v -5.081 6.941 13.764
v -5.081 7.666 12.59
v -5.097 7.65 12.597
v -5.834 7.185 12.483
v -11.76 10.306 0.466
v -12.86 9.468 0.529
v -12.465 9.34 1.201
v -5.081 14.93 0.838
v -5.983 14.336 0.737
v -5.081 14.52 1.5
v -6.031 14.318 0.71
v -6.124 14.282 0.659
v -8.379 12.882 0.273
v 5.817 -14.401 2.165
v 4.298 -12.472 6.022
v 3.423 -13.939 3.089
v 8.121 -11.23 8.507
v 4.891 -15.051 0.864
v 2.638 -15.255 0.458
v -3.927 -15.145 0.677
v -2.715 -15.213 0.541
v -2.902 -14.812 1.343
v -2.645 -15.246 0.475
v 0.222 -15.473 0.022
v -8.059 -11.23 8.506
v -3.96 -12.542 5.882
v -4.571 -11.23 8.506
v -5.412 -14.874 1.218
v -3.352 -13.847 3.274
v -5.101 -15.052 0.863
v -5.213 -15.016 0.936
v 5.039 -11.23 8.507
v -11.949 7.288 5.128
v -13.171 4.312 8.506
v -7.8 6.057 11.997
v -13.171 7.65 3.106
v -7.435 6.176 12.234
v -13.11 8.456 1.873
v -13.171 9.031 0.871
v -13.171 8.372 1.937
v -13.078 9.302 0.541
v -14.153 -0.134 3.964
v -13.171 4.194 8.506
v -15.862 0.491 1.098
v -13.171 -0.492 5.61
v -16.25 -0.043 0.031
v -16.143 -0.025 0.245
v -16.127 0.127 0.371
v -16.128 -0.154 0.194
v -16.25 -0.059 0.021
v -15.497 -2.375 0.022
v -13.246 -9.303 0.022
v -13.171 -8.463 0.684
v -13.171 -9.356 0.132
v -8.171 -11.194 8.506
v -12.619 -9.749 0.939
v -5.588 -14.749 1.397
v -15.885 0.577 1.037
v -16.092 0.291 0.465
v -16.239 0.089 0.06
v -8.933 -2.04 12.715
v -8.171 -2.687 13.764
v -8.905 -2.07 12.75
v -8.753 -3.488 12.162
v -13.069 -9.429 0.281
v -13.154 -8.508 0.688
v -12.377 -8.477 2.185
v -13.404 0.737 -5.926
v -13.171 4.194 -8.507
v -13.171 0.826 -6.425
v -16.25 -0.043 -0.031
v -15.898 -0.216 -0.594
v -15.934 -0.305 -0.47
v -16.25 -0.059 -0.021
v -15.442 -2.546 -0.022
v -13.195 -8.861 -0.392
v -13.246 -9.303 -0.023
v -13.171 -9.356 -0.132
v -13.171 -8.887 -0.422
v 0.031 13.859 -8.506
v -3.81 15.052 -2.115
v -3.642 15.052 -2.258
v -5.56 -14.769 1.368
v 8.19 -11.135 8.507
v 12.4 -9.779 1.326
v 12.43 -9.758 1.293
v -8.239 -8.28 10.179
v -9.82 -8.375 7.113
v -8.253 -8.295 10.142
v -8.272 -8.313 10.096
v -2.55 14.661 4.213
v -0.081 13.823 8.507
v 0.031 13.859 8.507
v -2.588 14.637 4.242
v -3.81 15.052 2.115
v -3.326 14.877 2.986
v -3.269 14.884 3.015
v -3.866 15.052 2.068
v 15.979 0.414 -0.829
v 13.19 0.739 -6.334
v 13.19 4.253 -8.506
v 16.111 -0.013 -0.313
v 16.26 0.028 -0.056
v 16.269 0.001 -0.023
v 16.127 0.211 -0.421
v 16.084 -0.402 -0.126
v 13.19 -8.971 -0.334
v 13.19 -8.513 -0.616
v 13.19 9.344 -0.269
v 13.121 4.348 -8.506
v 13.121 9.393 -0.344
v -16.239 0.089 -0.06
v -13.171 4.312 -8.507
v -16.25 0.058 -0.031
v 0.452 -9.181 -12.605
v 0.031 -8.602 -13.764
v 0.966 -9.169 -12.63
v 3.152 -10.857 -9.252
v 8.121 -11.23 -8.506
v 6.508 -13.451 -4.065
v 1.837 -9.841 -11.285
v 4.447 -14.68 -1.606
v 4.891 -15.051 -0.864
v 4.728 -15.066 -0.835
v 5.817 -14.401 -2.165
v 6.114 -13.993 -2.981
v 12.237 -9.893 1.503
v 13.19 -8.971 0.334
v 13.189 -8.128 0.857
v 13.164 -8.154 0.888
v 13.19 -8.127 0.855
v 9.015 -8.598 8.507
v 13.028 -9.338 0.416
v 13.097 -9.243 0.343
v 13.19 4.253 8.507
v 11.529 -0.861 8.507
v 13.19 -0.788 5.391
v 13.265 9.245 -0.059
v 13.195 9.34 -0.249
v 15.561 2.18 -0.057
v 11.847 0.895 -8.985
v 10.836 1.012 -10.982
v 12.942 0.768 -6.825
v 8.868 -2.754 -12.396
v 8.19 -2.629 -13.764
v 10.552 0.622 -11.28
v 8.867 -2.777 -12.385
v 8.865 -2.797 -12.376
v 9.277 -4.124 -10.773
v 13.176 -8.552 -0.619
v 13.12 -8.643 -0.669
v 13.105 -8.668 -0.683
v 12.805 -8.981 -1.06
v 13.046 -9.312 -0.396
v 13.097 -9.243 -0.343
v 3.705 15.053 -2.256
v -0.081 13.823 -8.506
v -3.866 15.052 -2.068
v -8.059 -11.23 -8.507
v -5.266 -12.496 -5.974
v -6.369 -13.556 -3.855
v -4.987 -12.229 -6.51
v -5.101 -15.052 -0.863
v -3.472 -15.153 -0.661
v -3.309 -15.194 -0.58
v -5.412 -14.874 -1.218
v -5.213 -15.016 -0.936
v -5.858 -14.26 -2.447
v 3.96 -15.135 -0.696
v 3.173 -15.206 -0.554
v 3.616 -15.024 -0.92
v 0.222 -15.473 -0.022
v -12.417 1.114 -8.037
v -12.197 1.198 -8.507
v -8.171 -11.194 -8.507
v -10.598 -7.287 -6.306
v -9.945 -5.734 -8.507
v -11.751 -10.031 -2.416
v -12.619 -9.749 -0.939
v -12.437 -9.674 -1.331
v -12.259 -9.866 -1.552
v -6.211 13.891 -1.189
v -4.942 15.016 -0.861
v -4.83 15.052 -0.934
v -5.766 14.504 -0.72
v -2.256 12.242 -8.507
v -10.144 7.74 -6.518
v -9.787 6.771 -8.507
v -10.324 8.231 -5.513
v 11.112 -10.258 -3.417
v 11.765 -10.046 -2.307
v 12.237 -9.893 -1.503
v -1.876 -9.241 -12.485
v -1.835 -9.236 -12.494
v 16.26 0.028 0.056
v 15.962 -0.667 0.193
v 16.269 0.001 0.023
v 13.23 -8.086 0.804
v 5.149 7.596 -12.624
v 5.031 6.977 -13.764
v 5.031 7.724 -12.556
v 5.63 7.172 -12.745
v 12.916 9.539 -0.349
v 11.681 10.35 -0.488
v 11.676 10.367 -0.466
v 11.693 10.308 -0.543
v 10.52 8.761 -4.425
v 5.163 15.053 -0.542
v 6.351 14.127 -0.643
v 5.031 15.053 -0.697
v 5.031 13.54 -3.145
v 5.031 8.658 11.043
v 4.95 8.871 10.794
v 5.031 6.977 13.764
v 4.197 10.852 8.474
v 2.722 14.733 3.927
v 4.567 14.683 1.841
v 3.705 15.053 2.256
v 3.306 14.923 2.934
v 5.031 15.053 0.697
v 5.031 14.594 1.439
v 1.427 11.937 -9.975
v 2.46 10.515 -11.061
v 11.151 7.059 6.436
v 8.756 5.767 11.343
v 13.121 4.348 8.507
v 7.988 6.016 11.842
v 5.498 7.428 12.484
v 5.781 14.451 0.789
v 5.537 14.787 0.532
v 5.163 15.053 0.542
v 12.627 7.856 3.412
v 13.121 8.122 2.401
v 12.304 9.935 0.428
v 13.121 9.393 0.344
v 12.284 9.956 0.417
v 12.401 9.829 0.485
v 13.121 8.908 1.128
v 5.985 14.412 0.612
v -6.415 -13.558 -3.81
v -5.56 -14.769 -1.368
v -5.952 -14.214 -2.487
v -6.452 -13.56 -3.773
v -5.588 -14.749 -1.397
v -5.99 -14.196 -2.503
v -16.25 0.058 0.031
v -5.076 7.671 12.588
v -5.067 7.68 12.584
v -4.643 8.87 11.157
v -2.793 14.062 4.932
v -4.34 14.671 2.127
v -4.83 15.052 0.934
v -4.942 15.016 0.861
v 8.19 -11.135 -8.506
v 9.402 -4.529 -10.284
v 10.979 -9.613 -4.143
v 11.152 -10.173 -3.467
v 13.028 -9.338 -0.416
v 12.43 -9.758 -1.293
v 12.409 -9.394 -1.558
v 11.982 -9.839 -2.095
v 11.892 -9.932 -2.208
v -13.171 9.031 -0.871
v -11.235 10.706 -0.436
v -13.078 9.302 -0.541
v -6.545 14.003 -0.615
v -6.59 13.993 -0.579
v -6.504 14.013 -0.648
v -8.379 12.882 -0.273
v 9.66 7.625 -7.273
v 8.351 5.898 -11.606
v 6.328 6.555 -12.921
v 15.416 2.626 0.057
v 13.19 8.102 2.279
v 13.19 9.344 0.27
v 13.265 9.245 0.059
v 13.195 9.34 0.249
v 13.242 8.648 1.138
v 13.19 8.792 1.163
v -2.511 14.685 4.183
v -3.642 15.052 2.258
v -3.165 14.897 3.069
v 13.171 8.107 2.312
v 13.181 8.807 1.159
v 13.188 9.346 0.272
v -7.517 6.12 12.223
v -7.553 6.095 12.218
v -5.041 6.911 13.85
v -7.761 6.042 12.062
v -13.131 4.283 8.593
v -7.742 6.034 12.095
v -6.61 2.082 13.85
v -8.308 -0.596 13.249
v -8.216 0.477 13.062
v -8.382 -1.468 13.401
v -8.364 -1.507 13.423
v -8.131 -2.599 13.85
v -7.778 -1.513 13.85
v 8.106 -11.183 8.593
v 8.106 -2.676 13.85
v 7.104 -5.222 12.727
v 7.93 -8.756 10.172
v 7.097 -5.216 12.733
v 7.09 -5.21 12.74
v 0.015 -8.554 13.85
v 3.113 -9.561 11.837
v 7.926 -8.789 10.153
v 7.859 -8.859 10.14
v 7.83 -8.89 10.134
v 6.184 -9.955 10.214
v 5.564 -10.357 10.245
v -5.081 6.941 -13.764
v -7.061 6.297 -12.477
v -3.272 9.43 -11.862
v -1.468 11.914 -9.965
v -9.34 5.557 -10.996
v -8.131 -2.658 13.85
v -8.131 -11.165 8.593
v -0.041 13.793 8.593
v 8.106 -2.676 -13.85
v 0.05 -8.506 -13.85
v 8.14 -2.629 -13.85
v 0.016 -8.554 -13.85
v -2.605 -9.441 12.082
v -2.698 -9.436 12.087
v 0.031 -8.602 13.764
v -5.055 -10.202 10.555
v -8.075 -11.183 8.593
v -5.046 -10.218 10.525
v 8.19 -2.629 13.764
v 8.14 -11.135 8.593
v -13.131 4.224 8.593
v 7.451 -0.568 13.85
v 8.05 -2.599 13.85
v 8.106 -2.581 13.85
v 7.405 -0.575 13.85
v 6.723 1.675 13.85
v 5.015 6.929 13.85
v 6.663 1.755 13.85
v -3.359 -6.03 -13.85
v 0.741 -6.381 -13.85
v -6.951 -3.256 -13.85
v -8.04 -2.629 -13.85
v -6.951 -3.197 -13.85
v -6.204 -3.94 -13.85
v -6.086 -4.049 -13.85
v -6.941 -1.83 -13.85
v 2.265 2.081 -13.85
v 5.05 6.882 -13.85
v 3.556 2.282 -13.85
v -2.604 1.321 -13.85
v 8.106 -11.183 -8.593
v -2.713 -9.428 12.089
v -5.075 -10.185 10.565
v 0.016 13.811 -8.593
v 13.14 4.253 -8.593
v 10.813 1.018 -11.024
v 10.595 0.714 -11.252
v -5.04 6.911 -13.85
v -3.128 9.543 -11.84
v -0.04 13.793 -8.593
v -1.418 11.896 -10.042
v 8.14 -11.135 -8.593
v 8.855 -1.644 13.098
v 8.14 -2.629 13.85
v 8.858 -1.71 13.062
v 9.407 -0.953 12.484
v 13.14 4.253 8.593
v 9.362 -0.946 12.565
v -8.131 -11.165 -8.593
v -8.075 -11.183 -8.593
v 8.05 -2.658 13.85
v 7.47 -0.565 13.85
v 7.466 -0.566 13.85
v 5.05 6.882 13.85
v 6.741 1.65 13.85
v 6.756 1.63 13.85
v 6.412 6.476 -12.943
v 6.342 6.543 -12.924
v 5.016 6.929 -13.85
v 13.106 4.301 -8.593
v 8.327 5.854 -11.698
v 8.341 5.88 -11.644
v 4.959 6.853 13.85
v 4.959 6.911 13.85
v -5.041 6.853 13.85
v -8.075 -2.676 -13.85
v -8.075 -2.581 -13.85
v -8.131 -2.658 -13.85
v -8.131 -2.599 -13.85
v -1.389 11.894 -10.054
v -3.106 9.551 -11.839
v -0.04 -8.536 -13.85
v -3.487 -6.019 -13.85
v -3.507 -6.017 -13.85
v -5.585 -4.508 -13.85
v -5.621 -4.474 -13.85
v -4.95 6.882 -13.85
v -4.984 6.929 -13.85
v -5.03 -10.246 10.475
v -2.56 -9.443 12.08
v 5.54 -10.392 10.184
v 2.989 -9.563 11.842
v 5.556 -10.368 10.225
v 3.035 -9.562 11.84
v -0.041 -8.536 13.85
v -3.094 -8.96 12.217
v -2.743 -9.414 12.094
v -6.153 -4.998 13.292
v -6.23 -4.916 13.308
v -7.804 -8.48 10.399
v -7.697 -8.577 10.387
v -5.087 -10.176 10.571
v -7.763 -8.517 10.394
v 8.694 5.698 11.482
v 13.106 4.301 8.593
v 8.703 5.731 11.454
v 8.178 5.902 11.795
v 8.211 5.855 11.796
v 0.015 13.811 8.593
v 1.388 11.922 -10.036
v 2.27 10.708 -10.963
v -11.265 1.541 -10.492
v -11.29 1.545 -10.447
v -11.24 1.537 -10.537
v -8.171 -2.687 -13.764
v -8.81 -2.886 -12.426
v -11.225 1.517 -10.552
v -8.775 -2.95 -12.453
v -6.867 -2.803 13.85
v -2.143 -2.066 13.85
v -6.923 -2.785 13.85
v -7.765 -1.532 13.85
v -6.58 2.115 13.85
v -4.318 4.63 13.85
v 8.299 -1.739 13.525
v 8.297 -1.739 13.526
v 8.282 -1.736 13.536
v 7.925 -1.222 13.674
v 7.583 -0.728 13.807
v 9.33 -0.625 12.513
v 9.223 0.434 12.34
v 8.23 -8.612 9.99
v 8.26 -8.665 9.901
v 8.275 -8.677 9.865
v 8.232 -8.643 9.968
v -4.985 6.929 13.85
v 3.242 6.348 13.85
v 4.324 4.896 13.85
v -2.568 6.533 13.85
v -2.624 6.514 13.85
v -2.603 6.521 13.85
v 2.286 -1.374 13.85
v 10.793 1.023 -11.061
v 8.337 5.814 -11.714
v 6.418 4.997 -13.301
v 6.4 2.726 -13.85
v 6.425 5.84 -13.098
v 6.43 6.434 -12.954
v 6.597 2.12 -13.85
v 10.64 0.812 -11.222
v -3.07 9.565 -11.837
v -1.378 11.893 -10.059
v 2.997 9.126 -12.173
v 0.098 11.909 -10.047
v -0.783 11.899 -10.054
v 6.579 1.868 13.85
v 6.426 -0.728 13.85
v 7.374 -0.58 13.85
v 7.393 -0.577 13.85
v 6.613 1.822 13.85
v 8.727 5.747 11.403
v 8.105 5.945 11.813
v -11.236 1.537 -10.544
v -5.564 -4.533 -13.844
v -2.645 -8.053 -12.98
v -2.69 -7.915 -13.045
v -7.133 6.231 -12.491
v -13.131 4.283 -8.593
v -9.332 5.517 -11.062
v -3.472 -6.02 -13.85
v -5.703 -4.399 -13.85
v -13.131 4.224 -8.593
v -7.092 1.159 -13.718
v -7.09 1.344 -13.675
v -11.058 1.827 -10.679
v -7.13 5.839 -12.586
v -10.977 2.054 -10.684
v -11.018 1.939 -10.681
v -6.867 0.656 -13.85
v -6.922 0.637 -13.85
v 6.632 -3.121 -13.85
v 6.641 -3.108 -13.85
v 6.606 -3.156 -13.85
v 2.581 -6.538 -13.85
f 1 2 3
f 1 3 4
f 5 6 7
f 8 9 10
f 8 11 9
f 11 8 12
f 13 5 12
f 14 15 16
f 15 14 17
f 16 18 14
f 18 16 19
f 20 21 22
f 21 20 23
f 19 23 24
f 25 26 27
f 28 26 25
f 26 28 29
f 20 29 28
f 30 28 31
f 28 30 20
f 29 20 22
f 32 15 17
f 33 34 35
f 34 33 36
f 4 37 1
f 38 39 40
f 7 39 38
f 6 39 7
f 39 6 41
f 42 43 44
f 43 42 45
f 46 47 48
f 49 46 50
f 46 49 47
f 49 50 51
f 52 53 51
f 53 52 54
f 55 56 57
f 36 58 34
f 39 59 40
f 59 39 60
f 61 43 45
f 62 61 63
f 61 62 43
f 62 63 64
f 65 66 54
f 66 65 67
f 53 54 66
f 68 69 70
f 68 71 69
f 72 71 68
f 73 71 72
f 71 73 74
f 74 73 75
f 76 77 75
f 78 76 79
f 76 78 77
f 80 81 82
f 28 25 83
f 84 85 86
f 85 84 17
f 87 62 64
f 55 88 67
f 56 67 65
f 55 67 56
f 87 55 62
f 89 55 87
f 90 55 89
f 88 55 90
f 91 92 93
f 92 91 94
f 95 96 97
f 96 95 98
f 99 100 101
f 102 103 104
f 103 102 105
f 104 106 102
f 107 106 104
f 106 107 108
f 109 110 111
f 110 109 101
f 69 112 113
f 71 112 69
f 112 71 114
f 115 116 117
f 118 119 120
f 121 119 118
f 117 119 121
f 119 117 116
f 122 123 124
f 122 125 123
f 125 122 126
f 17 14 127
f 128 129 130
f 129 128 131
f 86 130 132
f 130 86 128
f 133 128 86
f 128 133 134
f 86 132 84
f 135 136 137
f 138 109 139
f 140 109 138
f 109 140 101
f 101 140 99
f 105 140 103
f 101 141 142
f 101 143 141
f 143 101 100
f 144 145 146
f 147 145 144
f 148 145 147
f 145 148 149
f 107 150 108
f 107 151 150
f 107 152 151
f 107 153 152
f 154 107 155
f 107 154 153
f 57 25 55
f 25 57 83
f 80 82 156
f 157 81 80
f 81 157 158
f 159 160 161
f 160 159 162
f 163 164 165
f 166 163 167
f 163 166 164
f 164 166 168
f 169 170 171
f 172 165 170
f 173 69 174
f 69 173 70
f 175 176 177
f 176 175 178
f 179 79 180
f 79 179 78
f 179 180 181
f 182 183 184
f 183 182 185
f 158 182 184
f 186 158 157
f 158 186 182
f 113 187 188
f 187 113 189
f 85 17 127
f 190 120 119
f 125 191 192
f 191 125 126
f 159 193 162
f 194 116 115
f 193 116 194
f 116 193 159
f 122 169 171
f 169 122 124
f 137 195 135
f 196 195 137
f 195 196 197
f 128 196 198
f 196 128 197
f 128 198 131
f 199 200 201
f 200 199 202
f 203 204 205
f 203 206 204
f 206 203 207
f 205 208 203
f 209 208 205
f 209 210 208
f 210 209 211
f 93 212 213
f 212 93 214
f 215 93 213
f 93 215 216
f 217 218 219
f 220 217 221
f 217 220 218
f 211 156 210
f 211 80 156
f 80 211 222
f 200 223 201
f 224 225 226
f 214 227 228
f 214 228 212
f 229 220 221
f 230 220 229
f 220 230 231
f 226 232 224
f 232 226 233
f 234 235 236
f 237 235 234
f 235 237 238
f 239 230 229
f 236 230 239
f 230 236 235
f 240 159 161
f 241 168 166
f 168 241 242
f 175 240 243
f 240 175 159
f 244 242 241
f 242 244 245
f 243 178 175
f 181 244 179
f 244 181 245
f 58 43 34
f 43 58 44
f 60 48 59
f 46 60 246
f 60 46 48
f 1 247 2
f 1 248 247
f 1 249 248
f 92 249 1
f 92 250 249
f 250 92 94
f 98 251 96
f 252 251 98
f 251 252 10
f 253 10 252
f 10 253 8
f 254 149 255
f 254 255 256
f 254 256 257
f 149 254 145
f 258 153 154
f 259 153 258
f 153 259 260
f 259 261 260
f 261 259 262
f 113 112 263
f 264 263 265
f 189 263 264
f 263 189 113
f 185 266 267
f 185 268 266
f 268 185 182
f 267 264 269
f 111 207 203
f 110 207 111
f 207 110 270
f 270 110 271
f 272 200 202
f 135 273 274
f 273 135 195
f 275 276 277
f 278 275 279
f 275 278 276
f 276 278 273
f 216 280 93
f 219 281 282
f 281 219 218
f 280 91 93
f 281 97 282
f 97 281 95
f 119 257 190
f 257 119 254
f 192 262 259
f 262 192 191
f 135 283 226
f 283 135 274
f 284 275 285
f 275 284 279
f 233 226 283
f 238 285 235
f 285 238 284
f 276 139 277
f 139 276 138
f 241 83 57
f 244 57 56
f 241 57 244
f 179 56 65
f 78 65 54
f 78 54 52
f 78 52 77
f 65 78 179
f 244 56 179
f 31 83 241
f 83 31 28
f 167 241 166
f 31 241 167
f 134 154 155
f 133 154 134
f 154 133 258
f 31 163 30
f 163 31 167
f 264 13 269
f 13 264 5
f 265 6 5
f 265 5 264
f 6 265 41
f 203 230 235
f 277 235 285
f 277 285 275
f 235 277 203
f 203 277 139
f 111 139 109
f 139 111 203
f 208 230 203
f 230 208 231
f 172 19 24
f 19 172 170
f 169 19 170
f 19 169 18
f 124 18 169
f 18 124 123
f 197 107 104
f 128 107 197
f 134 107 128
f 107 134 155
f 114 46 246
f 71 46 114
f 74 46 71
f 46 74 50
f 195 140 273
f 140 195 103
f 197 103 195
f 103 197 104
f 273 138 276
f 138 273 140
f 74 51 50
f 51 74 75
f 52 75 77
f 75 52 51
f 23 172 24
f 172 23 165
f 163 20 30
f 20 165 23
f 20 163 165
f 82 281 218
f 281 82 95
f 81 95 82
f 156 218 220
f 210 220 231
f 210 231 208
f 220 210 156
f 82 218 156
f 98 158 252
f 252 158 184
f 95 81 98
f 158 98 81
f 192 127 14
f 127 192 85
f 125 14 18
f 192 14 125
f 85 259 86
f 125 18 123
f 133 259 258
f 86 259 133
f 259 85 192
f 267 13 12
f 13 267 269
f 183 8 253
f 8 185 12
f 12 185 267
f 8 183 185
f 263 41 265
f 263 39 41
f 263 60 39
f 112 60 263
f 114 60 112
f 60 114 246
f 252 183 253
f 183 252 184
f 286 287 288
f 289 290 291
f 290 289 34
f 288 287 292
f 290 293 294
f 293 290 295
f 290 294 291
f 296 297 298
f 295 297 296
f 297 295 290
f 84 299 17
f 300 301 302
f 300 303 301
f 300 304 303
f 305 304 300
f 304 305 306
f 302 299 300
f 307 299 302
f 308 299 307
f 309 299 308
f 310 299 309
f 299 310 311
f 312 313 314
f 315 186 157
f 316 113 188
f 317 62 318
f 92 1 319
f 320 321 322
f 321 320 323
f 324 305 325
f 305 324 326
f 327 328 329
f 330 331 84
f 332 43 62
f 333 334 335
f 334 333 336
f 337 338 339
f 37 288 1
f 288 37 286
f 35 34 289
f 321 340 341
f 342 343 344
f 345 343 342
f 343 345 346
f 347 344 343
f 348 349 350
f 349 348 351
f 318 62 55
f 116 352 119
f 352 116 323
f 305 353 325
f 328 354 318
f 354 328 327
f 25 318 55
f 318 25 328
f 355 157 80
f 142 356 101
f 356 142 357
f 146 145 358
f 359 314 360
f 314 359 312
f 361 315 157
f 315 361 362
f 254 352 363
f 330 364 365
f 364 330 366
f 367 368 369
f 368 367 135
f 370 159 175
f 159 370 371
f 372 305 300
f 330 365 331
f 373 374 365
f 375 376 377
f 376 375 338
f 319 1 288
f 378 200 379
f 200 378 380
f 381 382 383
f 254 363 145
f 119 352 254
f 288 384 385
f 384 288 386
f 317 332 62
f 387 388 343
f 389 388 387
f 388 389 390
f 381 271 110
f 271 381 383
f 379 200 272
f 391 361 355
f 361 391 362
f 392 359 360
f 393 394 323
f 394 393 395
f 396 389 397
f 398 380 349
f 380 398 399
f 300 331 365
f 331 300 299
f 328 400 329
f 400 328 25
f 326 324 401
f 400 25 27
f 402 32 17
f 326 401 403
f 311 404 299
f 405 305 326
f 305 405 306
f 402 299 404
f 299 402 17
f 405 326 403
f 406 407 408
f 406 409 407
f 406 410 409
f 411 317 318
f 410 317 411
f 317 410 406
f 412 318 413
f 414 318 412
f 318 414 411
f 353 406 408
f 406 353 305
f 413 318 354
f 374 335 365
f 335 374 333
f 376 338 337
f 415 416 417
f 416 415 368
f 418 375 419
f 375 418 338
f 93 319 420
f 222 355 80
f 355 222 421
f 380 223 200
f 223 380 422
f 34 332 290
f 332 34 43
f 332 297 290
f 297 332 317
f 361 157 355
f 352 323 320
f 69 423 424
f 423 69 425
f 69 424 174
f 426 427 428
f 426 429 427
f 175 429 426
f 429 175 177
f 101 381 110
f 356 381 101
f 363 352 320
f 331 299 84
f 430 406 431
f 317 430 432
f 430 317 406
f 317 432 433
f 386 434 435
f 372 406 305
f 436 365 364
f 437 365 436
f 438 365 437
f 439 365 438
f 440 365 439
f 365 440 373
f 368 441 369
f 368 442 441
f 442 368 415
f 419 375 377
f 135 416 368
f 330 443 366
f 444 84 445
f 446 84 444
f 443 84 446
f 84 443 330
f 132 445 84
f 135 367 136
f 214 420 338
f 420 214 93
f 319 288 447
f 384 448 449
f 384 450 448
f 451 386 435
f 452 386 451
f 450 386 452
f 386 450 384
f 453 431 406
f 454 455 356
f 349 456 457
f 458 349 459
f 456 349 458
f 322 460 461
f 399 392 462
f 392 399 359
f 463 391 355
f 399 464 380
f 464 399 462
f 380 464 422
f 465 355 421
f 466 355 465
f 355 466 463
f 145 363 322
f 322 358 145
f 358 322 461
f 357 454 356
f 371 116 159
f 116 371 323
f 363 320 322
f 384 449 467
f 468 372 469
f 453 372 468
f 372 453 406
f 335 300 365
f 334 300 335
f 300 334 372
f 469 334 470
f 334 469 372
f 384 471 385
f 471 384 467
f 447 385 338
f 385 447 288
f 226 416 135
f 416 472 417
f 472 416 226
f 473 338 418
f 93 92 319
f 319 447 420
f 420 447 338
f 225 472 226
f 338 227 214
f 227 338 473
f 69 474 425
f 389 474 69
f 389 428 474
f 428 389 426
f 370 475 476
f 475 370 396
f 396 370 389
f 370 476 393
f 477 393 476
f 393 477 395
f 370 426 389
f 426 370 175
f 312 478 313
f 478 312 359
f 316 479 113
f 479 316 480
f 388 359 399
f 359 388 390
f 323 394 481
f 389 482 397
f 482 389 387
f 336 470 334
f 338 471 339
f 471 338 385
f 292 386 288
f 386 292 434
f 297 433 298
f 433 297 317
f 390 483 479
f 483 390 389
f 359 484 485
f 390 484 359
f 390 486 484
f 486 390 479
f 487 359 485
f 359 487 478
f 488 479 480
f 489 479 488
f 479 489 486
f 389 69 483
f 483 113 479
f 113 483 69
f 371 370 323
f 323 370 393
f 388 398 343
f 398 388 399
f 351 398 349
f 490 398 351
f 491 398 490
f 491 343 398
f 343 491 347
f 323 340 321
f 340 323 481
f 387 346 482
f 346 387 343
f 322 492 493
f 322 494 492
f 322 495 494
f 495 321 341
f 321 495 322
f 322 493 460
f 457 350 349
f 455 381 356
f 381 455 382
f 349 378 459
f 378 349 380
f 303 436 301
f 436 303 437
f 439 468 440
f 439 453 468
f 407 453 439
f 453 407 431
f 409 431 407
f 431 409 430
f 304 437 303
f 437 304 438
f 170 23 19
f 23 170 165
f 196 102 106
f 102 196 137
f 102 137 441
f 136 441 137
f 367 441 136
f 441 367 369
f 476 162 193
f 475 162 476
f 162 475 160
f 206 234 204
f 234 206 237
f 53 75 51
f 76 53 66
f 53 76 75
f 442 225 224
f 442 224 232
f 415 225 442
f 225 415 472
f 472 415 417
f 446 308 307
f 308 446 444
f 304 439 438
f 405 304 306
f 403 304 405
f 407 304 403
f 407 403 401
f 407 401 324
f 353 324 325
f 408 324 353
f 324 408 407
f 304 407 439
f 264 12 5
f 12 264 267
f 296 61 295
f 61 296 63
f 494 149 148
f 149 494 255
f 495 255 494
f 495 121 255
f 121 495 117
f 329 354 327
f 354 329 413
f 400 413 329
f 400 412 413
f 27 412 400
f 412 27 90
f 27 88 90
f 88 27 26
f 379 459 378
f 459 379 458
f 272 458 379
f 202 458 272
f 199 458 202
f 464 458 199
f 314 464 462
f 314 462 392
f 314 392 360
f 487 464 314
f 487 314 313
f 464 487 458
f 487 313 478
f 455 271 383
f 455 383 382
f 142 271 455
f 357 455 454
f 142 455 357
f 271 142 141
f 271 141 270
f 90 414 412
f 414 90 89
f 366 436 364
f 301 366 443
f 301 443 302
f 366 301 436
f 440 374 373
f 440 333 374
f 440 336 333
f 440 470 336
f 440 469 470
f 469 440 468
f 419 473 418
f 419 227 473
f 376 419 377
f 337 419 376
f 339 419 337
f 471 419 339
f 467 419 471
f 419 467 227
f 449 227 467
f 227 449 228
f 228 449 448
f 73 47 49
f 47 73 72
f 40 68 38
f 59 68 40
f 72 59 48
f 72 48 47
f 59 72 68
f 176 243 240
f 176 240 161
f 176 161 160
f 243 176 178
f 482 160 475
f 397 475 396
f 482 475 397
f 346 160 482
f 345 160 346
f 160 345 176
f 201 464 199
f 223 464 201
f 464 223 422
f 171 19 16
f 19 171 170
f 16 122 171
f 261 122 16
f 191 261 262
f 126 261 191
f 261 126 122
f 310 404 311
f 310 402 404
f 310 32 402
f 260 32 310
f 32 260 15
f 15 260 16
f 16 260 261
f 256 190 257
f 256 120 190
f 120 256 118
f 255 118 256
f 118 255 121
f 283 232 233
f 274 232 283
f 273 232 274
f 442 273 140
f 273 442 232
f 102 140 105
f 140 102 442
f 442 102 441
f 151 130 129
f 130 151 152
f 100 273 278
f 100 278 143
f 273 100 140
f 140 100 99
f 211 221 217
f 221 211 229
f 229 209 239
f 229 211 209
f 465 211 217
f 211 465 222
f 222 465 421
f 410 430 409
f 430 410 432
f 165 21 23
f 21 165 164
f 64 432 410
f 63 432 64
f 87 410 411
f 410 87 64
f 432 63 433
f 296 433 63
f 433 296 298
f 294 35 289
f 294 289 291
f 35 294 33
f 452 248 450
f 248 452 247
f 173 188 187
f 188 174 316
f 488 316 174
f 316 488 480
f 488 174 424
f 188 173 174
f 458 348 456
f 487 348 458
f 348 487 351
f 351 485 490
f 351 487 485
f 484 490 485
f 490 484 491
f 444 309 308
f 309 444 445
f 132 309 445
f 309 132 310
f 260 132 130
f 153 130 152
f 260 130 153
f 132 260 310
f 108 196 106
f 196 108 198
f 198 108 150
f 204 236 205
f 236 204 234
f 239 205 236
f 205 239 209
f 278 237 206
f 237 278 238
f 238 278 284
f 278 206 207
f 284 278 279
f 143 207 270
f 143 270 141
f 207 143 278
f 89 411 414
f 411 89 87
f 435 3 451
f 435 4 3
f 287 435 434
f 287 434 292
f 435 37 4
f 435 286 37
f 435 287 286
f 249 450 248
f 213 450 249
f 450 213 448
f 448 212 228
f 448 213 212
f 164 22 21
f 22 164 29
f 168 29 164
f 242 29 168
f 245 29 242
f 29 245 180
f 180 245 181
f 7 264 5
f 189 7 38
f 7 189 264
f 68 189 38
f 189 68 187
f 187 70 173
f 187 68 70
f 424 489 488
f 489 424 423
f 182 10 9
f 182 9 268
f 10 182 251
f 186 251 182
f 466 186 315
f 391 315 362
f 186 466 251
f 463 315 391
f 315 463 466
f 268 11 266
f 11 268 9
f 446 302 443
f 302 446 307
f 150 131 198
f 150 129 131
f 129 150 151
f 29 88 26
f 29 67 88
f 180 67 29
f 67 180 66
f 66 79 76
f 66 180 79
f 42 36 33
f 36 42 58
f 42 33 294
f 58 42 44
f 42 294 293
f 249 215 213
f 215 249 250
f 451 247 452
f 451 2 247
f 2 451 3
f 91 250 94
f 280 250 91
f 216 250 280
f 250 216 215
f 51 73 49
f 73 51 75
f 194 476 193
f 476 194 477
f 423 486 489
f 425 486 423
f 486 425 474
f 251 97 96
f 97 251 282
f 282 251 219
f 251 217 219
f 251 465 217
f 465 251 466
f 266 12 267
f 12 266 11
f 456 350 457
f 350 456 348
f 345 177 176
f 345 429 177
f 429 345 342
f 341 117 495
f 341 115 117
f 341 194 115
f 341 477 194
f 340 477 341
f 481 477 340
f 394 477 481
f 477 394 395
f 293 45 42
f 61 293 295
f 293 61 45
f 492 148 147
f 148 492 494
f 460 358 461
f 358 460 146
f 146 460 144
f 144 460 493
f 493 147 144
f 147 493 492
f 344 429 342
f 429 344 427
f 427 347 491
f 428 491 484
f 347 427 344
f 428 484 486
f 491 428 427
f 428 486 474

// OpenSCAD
// Auto-generated OpenSCAD file

    inner_points = 10*[[-0.5132325915335268, -1.4956773870023274, -0.34271512053890807], [0.5132015226290007, 1.4957694784624385, 0.34271512053890807], [-1.3164886558141748, -0.9244174678024033, -0.17406815225290823], [0.4860549449459691, -1.4956217926681488, -0.3804565612375623], [-0.4860860138504952, 1.4957138841282598, 0.3804565612375623], [1.3164575869096489, 0.9245095592625141, 0.17406815225290823], [-1.616896733010238, -4.390779222781e-05, 0.06106693383481107], [1.299680079223296, -0.924271919945941, -0.2728765267863734], [-1.299711148127822, 0.9243640114060518, 0.2728765267863734], [1.616865664105712, 0.0001359992523386863, -0.06106693383481107], [-0.556237595762048, -0.34523719270611647, -1.479672427436971], [-0.4552213282331215, -0.9925171560774508, 1.1940016601646186], [-0.04302053868078421, 1.1504862400262665, -1.1369573068980627], [0.05799572884814228, 0.5032062766549321, 1.5367167807035265], [0.443049940717448, -0.34518159837193774, -1.517413868135625], [0.5440662082463744, -0.992461561743272, 1.1562602194659646], [0.7602355255998638, 0.579226320826342, -1.3056042751840629], [0.8612517931287903, -0.06805364254499237, 1.3680698124175268], [-0.8566456729581111, 0.5791363673040587, -1.2445373413492518], [-0.7556294054291846, -0.06814359606727556, 1.4291367462523379], [-0.043371596438175015, -1.137724291379308, -1.1496229384598298], [0.019059890311353907, -1.5377653089795797, 0.5027985225178162], [0.7870310455255046, 1.282407060551355, -0.5950982249693593], [0.8494625322750335, 0.8823660429510828, 1.0573232360082867], [-1.3430672101137342, -0.21340632570331178, -0.8767464116734562], [-1.2806357233642052, -0.6134473433035833, 0.7756750493041897], [-0.8298501530324705, 1.2823171070290713, -0.5340312911345482], [-0.7674186662829414, 0.8822760894287998, 1.1183901698430978], [1.2731015249237372, -0.21326077784684974, -0.9755547862069215], [1.3355330116732662, -0.6133017954471214, 0.6768666747707244]];

    outer_points = 10*[[-1.6180339887093724, 0.0, -1.1451363168900623e-05], [1.6180339887093724, 0.0, 1.1451363168900623e-05], [-1.3090169943343848, -0.9510565162945183, -1.0363544707418131e-05], [-1.3090169943499435, 0.9510565162945183, -8.165150117381781e-06], [1.3090169943499435, -0.9510565162945183, 8.165150117381781e-06], [1.3090169943343848, 0.9510565162945183, 1.0363544707418131e-05], [-0.49999999997489053, -1.538841768586599, -5.317204411630996e-06], [-0.5000000000000652, 1.538841768586599, -1.7601272442682922e-06], [0.5000000000000652, -1.538841768586599, 1.7601272442682922e-06], [0.49999999997489053, 1.538841768586599, 5.317204411630996e-06], [-0.8090267354638724, -0.2628671468326607, 1.3763758909435393], [-0.8090072532411997, -0.2628639652861217, -1.3763879499280285], [0.8090072532455, -0.2628671468326607, 1.3763873423067081], [0.8090267354681727, -0.2628639652861217, -1.3763764985648597], [-0.5000097411044434, 0.6881893694618576, 1.3763791771565905], [-0.49999025888177073, 0.6881925510083967, -1.376384663714977], [0.4999902588705123, 0.6881893694618576, 1.3763862544882464], [0.500009741093185, 0.6881925510083967, -1.3763775863833212], [-9.741104378259176e-06, -0.8506523991247412, 1.376380937283835], [9.741118294443999e-06, -0.8506492175782021, -1.3763829035877326], [-1.3090230146835373, 0.42532442102378687, 0.8506420355587297], [-1.3090109740077491, 0.4253263873276848, -0.8506595811016057], [1.309010974000791, 0.42532442102378687, 0.8506605642535546], [1.309023014676579, 0.4253263873276848, -0.8506410524067808], [-0.809023014683472, -1.1135173475628122, 0.850643795685974], [-0.8090109740076838, -1.1135153812589142, -0.8506578209743614], [0.8090109740259004, -1.1135173475628122, 0.8506552470491429], [0.8090230147016886, -1.1135153812589142, -0.8506463696111926], [-6.020349152492207e-06, 1.3763809373183054, 0.8506523991034373], [6.020326635632171e-06, 1.3763829036222033, -0.8506492175568982]];

    // Convex hull for inner set (I)
    module inner_hull() {
        hull() {
            for (p = inner_points) {
                translate(p) sphere(r=0.1);
            }
        }
    }

    // Convex hull for outer set (O) minus inner hull (O \ I)
    module outer_minus_inner() {
        difference() {
            hull() {
                for (p = outer_points) {
                    translate(p) sphere(r=0.1);
                }
            }
            inner_hull(); // Subtract inner hull
        }
    }

    // Convex hull for outer set (O) minus all translated inner hulls
    module outer_minus_AllTranslationInner() {
        difference() {
            hull() {
                for (p = outer_points) {
                    translate(p) sphere(r=0.1);
                }
            }
            hull() {
                translate([0,0,50]) inner_hull();
                translate([0,0,-50]) inner_hull();
            }; // Subtract translated inner hulls
        }
    }

    // Difference between outer_minus_inner and outer_minus_AllTranslationInner
    module outer_minus_inner_diff() {
        difference() {
            // Outer minus inner
            difference() {
                hull() {
                    for (p = outer_points) {
                        translate(p) sphere(r=0.1);
                    }
                }
                inner_hull();
            }

            // Subtract Outer minus AllTranslationInner
            difference() {
                hull() {
                    for (p = outer_points) {
                        translate(p) sphere(r=0.1);
                    }
                }
                hull() {
                    translate([0,0,50]) inner_hull();
                    translate([0,0,-50]) inner_hull();
                };
            }
        }
    }

    // Rendering all with colors applied
    color([1, 1, 0, 1]) outer_minus_inner_diff(); // Opaque yellow
    
